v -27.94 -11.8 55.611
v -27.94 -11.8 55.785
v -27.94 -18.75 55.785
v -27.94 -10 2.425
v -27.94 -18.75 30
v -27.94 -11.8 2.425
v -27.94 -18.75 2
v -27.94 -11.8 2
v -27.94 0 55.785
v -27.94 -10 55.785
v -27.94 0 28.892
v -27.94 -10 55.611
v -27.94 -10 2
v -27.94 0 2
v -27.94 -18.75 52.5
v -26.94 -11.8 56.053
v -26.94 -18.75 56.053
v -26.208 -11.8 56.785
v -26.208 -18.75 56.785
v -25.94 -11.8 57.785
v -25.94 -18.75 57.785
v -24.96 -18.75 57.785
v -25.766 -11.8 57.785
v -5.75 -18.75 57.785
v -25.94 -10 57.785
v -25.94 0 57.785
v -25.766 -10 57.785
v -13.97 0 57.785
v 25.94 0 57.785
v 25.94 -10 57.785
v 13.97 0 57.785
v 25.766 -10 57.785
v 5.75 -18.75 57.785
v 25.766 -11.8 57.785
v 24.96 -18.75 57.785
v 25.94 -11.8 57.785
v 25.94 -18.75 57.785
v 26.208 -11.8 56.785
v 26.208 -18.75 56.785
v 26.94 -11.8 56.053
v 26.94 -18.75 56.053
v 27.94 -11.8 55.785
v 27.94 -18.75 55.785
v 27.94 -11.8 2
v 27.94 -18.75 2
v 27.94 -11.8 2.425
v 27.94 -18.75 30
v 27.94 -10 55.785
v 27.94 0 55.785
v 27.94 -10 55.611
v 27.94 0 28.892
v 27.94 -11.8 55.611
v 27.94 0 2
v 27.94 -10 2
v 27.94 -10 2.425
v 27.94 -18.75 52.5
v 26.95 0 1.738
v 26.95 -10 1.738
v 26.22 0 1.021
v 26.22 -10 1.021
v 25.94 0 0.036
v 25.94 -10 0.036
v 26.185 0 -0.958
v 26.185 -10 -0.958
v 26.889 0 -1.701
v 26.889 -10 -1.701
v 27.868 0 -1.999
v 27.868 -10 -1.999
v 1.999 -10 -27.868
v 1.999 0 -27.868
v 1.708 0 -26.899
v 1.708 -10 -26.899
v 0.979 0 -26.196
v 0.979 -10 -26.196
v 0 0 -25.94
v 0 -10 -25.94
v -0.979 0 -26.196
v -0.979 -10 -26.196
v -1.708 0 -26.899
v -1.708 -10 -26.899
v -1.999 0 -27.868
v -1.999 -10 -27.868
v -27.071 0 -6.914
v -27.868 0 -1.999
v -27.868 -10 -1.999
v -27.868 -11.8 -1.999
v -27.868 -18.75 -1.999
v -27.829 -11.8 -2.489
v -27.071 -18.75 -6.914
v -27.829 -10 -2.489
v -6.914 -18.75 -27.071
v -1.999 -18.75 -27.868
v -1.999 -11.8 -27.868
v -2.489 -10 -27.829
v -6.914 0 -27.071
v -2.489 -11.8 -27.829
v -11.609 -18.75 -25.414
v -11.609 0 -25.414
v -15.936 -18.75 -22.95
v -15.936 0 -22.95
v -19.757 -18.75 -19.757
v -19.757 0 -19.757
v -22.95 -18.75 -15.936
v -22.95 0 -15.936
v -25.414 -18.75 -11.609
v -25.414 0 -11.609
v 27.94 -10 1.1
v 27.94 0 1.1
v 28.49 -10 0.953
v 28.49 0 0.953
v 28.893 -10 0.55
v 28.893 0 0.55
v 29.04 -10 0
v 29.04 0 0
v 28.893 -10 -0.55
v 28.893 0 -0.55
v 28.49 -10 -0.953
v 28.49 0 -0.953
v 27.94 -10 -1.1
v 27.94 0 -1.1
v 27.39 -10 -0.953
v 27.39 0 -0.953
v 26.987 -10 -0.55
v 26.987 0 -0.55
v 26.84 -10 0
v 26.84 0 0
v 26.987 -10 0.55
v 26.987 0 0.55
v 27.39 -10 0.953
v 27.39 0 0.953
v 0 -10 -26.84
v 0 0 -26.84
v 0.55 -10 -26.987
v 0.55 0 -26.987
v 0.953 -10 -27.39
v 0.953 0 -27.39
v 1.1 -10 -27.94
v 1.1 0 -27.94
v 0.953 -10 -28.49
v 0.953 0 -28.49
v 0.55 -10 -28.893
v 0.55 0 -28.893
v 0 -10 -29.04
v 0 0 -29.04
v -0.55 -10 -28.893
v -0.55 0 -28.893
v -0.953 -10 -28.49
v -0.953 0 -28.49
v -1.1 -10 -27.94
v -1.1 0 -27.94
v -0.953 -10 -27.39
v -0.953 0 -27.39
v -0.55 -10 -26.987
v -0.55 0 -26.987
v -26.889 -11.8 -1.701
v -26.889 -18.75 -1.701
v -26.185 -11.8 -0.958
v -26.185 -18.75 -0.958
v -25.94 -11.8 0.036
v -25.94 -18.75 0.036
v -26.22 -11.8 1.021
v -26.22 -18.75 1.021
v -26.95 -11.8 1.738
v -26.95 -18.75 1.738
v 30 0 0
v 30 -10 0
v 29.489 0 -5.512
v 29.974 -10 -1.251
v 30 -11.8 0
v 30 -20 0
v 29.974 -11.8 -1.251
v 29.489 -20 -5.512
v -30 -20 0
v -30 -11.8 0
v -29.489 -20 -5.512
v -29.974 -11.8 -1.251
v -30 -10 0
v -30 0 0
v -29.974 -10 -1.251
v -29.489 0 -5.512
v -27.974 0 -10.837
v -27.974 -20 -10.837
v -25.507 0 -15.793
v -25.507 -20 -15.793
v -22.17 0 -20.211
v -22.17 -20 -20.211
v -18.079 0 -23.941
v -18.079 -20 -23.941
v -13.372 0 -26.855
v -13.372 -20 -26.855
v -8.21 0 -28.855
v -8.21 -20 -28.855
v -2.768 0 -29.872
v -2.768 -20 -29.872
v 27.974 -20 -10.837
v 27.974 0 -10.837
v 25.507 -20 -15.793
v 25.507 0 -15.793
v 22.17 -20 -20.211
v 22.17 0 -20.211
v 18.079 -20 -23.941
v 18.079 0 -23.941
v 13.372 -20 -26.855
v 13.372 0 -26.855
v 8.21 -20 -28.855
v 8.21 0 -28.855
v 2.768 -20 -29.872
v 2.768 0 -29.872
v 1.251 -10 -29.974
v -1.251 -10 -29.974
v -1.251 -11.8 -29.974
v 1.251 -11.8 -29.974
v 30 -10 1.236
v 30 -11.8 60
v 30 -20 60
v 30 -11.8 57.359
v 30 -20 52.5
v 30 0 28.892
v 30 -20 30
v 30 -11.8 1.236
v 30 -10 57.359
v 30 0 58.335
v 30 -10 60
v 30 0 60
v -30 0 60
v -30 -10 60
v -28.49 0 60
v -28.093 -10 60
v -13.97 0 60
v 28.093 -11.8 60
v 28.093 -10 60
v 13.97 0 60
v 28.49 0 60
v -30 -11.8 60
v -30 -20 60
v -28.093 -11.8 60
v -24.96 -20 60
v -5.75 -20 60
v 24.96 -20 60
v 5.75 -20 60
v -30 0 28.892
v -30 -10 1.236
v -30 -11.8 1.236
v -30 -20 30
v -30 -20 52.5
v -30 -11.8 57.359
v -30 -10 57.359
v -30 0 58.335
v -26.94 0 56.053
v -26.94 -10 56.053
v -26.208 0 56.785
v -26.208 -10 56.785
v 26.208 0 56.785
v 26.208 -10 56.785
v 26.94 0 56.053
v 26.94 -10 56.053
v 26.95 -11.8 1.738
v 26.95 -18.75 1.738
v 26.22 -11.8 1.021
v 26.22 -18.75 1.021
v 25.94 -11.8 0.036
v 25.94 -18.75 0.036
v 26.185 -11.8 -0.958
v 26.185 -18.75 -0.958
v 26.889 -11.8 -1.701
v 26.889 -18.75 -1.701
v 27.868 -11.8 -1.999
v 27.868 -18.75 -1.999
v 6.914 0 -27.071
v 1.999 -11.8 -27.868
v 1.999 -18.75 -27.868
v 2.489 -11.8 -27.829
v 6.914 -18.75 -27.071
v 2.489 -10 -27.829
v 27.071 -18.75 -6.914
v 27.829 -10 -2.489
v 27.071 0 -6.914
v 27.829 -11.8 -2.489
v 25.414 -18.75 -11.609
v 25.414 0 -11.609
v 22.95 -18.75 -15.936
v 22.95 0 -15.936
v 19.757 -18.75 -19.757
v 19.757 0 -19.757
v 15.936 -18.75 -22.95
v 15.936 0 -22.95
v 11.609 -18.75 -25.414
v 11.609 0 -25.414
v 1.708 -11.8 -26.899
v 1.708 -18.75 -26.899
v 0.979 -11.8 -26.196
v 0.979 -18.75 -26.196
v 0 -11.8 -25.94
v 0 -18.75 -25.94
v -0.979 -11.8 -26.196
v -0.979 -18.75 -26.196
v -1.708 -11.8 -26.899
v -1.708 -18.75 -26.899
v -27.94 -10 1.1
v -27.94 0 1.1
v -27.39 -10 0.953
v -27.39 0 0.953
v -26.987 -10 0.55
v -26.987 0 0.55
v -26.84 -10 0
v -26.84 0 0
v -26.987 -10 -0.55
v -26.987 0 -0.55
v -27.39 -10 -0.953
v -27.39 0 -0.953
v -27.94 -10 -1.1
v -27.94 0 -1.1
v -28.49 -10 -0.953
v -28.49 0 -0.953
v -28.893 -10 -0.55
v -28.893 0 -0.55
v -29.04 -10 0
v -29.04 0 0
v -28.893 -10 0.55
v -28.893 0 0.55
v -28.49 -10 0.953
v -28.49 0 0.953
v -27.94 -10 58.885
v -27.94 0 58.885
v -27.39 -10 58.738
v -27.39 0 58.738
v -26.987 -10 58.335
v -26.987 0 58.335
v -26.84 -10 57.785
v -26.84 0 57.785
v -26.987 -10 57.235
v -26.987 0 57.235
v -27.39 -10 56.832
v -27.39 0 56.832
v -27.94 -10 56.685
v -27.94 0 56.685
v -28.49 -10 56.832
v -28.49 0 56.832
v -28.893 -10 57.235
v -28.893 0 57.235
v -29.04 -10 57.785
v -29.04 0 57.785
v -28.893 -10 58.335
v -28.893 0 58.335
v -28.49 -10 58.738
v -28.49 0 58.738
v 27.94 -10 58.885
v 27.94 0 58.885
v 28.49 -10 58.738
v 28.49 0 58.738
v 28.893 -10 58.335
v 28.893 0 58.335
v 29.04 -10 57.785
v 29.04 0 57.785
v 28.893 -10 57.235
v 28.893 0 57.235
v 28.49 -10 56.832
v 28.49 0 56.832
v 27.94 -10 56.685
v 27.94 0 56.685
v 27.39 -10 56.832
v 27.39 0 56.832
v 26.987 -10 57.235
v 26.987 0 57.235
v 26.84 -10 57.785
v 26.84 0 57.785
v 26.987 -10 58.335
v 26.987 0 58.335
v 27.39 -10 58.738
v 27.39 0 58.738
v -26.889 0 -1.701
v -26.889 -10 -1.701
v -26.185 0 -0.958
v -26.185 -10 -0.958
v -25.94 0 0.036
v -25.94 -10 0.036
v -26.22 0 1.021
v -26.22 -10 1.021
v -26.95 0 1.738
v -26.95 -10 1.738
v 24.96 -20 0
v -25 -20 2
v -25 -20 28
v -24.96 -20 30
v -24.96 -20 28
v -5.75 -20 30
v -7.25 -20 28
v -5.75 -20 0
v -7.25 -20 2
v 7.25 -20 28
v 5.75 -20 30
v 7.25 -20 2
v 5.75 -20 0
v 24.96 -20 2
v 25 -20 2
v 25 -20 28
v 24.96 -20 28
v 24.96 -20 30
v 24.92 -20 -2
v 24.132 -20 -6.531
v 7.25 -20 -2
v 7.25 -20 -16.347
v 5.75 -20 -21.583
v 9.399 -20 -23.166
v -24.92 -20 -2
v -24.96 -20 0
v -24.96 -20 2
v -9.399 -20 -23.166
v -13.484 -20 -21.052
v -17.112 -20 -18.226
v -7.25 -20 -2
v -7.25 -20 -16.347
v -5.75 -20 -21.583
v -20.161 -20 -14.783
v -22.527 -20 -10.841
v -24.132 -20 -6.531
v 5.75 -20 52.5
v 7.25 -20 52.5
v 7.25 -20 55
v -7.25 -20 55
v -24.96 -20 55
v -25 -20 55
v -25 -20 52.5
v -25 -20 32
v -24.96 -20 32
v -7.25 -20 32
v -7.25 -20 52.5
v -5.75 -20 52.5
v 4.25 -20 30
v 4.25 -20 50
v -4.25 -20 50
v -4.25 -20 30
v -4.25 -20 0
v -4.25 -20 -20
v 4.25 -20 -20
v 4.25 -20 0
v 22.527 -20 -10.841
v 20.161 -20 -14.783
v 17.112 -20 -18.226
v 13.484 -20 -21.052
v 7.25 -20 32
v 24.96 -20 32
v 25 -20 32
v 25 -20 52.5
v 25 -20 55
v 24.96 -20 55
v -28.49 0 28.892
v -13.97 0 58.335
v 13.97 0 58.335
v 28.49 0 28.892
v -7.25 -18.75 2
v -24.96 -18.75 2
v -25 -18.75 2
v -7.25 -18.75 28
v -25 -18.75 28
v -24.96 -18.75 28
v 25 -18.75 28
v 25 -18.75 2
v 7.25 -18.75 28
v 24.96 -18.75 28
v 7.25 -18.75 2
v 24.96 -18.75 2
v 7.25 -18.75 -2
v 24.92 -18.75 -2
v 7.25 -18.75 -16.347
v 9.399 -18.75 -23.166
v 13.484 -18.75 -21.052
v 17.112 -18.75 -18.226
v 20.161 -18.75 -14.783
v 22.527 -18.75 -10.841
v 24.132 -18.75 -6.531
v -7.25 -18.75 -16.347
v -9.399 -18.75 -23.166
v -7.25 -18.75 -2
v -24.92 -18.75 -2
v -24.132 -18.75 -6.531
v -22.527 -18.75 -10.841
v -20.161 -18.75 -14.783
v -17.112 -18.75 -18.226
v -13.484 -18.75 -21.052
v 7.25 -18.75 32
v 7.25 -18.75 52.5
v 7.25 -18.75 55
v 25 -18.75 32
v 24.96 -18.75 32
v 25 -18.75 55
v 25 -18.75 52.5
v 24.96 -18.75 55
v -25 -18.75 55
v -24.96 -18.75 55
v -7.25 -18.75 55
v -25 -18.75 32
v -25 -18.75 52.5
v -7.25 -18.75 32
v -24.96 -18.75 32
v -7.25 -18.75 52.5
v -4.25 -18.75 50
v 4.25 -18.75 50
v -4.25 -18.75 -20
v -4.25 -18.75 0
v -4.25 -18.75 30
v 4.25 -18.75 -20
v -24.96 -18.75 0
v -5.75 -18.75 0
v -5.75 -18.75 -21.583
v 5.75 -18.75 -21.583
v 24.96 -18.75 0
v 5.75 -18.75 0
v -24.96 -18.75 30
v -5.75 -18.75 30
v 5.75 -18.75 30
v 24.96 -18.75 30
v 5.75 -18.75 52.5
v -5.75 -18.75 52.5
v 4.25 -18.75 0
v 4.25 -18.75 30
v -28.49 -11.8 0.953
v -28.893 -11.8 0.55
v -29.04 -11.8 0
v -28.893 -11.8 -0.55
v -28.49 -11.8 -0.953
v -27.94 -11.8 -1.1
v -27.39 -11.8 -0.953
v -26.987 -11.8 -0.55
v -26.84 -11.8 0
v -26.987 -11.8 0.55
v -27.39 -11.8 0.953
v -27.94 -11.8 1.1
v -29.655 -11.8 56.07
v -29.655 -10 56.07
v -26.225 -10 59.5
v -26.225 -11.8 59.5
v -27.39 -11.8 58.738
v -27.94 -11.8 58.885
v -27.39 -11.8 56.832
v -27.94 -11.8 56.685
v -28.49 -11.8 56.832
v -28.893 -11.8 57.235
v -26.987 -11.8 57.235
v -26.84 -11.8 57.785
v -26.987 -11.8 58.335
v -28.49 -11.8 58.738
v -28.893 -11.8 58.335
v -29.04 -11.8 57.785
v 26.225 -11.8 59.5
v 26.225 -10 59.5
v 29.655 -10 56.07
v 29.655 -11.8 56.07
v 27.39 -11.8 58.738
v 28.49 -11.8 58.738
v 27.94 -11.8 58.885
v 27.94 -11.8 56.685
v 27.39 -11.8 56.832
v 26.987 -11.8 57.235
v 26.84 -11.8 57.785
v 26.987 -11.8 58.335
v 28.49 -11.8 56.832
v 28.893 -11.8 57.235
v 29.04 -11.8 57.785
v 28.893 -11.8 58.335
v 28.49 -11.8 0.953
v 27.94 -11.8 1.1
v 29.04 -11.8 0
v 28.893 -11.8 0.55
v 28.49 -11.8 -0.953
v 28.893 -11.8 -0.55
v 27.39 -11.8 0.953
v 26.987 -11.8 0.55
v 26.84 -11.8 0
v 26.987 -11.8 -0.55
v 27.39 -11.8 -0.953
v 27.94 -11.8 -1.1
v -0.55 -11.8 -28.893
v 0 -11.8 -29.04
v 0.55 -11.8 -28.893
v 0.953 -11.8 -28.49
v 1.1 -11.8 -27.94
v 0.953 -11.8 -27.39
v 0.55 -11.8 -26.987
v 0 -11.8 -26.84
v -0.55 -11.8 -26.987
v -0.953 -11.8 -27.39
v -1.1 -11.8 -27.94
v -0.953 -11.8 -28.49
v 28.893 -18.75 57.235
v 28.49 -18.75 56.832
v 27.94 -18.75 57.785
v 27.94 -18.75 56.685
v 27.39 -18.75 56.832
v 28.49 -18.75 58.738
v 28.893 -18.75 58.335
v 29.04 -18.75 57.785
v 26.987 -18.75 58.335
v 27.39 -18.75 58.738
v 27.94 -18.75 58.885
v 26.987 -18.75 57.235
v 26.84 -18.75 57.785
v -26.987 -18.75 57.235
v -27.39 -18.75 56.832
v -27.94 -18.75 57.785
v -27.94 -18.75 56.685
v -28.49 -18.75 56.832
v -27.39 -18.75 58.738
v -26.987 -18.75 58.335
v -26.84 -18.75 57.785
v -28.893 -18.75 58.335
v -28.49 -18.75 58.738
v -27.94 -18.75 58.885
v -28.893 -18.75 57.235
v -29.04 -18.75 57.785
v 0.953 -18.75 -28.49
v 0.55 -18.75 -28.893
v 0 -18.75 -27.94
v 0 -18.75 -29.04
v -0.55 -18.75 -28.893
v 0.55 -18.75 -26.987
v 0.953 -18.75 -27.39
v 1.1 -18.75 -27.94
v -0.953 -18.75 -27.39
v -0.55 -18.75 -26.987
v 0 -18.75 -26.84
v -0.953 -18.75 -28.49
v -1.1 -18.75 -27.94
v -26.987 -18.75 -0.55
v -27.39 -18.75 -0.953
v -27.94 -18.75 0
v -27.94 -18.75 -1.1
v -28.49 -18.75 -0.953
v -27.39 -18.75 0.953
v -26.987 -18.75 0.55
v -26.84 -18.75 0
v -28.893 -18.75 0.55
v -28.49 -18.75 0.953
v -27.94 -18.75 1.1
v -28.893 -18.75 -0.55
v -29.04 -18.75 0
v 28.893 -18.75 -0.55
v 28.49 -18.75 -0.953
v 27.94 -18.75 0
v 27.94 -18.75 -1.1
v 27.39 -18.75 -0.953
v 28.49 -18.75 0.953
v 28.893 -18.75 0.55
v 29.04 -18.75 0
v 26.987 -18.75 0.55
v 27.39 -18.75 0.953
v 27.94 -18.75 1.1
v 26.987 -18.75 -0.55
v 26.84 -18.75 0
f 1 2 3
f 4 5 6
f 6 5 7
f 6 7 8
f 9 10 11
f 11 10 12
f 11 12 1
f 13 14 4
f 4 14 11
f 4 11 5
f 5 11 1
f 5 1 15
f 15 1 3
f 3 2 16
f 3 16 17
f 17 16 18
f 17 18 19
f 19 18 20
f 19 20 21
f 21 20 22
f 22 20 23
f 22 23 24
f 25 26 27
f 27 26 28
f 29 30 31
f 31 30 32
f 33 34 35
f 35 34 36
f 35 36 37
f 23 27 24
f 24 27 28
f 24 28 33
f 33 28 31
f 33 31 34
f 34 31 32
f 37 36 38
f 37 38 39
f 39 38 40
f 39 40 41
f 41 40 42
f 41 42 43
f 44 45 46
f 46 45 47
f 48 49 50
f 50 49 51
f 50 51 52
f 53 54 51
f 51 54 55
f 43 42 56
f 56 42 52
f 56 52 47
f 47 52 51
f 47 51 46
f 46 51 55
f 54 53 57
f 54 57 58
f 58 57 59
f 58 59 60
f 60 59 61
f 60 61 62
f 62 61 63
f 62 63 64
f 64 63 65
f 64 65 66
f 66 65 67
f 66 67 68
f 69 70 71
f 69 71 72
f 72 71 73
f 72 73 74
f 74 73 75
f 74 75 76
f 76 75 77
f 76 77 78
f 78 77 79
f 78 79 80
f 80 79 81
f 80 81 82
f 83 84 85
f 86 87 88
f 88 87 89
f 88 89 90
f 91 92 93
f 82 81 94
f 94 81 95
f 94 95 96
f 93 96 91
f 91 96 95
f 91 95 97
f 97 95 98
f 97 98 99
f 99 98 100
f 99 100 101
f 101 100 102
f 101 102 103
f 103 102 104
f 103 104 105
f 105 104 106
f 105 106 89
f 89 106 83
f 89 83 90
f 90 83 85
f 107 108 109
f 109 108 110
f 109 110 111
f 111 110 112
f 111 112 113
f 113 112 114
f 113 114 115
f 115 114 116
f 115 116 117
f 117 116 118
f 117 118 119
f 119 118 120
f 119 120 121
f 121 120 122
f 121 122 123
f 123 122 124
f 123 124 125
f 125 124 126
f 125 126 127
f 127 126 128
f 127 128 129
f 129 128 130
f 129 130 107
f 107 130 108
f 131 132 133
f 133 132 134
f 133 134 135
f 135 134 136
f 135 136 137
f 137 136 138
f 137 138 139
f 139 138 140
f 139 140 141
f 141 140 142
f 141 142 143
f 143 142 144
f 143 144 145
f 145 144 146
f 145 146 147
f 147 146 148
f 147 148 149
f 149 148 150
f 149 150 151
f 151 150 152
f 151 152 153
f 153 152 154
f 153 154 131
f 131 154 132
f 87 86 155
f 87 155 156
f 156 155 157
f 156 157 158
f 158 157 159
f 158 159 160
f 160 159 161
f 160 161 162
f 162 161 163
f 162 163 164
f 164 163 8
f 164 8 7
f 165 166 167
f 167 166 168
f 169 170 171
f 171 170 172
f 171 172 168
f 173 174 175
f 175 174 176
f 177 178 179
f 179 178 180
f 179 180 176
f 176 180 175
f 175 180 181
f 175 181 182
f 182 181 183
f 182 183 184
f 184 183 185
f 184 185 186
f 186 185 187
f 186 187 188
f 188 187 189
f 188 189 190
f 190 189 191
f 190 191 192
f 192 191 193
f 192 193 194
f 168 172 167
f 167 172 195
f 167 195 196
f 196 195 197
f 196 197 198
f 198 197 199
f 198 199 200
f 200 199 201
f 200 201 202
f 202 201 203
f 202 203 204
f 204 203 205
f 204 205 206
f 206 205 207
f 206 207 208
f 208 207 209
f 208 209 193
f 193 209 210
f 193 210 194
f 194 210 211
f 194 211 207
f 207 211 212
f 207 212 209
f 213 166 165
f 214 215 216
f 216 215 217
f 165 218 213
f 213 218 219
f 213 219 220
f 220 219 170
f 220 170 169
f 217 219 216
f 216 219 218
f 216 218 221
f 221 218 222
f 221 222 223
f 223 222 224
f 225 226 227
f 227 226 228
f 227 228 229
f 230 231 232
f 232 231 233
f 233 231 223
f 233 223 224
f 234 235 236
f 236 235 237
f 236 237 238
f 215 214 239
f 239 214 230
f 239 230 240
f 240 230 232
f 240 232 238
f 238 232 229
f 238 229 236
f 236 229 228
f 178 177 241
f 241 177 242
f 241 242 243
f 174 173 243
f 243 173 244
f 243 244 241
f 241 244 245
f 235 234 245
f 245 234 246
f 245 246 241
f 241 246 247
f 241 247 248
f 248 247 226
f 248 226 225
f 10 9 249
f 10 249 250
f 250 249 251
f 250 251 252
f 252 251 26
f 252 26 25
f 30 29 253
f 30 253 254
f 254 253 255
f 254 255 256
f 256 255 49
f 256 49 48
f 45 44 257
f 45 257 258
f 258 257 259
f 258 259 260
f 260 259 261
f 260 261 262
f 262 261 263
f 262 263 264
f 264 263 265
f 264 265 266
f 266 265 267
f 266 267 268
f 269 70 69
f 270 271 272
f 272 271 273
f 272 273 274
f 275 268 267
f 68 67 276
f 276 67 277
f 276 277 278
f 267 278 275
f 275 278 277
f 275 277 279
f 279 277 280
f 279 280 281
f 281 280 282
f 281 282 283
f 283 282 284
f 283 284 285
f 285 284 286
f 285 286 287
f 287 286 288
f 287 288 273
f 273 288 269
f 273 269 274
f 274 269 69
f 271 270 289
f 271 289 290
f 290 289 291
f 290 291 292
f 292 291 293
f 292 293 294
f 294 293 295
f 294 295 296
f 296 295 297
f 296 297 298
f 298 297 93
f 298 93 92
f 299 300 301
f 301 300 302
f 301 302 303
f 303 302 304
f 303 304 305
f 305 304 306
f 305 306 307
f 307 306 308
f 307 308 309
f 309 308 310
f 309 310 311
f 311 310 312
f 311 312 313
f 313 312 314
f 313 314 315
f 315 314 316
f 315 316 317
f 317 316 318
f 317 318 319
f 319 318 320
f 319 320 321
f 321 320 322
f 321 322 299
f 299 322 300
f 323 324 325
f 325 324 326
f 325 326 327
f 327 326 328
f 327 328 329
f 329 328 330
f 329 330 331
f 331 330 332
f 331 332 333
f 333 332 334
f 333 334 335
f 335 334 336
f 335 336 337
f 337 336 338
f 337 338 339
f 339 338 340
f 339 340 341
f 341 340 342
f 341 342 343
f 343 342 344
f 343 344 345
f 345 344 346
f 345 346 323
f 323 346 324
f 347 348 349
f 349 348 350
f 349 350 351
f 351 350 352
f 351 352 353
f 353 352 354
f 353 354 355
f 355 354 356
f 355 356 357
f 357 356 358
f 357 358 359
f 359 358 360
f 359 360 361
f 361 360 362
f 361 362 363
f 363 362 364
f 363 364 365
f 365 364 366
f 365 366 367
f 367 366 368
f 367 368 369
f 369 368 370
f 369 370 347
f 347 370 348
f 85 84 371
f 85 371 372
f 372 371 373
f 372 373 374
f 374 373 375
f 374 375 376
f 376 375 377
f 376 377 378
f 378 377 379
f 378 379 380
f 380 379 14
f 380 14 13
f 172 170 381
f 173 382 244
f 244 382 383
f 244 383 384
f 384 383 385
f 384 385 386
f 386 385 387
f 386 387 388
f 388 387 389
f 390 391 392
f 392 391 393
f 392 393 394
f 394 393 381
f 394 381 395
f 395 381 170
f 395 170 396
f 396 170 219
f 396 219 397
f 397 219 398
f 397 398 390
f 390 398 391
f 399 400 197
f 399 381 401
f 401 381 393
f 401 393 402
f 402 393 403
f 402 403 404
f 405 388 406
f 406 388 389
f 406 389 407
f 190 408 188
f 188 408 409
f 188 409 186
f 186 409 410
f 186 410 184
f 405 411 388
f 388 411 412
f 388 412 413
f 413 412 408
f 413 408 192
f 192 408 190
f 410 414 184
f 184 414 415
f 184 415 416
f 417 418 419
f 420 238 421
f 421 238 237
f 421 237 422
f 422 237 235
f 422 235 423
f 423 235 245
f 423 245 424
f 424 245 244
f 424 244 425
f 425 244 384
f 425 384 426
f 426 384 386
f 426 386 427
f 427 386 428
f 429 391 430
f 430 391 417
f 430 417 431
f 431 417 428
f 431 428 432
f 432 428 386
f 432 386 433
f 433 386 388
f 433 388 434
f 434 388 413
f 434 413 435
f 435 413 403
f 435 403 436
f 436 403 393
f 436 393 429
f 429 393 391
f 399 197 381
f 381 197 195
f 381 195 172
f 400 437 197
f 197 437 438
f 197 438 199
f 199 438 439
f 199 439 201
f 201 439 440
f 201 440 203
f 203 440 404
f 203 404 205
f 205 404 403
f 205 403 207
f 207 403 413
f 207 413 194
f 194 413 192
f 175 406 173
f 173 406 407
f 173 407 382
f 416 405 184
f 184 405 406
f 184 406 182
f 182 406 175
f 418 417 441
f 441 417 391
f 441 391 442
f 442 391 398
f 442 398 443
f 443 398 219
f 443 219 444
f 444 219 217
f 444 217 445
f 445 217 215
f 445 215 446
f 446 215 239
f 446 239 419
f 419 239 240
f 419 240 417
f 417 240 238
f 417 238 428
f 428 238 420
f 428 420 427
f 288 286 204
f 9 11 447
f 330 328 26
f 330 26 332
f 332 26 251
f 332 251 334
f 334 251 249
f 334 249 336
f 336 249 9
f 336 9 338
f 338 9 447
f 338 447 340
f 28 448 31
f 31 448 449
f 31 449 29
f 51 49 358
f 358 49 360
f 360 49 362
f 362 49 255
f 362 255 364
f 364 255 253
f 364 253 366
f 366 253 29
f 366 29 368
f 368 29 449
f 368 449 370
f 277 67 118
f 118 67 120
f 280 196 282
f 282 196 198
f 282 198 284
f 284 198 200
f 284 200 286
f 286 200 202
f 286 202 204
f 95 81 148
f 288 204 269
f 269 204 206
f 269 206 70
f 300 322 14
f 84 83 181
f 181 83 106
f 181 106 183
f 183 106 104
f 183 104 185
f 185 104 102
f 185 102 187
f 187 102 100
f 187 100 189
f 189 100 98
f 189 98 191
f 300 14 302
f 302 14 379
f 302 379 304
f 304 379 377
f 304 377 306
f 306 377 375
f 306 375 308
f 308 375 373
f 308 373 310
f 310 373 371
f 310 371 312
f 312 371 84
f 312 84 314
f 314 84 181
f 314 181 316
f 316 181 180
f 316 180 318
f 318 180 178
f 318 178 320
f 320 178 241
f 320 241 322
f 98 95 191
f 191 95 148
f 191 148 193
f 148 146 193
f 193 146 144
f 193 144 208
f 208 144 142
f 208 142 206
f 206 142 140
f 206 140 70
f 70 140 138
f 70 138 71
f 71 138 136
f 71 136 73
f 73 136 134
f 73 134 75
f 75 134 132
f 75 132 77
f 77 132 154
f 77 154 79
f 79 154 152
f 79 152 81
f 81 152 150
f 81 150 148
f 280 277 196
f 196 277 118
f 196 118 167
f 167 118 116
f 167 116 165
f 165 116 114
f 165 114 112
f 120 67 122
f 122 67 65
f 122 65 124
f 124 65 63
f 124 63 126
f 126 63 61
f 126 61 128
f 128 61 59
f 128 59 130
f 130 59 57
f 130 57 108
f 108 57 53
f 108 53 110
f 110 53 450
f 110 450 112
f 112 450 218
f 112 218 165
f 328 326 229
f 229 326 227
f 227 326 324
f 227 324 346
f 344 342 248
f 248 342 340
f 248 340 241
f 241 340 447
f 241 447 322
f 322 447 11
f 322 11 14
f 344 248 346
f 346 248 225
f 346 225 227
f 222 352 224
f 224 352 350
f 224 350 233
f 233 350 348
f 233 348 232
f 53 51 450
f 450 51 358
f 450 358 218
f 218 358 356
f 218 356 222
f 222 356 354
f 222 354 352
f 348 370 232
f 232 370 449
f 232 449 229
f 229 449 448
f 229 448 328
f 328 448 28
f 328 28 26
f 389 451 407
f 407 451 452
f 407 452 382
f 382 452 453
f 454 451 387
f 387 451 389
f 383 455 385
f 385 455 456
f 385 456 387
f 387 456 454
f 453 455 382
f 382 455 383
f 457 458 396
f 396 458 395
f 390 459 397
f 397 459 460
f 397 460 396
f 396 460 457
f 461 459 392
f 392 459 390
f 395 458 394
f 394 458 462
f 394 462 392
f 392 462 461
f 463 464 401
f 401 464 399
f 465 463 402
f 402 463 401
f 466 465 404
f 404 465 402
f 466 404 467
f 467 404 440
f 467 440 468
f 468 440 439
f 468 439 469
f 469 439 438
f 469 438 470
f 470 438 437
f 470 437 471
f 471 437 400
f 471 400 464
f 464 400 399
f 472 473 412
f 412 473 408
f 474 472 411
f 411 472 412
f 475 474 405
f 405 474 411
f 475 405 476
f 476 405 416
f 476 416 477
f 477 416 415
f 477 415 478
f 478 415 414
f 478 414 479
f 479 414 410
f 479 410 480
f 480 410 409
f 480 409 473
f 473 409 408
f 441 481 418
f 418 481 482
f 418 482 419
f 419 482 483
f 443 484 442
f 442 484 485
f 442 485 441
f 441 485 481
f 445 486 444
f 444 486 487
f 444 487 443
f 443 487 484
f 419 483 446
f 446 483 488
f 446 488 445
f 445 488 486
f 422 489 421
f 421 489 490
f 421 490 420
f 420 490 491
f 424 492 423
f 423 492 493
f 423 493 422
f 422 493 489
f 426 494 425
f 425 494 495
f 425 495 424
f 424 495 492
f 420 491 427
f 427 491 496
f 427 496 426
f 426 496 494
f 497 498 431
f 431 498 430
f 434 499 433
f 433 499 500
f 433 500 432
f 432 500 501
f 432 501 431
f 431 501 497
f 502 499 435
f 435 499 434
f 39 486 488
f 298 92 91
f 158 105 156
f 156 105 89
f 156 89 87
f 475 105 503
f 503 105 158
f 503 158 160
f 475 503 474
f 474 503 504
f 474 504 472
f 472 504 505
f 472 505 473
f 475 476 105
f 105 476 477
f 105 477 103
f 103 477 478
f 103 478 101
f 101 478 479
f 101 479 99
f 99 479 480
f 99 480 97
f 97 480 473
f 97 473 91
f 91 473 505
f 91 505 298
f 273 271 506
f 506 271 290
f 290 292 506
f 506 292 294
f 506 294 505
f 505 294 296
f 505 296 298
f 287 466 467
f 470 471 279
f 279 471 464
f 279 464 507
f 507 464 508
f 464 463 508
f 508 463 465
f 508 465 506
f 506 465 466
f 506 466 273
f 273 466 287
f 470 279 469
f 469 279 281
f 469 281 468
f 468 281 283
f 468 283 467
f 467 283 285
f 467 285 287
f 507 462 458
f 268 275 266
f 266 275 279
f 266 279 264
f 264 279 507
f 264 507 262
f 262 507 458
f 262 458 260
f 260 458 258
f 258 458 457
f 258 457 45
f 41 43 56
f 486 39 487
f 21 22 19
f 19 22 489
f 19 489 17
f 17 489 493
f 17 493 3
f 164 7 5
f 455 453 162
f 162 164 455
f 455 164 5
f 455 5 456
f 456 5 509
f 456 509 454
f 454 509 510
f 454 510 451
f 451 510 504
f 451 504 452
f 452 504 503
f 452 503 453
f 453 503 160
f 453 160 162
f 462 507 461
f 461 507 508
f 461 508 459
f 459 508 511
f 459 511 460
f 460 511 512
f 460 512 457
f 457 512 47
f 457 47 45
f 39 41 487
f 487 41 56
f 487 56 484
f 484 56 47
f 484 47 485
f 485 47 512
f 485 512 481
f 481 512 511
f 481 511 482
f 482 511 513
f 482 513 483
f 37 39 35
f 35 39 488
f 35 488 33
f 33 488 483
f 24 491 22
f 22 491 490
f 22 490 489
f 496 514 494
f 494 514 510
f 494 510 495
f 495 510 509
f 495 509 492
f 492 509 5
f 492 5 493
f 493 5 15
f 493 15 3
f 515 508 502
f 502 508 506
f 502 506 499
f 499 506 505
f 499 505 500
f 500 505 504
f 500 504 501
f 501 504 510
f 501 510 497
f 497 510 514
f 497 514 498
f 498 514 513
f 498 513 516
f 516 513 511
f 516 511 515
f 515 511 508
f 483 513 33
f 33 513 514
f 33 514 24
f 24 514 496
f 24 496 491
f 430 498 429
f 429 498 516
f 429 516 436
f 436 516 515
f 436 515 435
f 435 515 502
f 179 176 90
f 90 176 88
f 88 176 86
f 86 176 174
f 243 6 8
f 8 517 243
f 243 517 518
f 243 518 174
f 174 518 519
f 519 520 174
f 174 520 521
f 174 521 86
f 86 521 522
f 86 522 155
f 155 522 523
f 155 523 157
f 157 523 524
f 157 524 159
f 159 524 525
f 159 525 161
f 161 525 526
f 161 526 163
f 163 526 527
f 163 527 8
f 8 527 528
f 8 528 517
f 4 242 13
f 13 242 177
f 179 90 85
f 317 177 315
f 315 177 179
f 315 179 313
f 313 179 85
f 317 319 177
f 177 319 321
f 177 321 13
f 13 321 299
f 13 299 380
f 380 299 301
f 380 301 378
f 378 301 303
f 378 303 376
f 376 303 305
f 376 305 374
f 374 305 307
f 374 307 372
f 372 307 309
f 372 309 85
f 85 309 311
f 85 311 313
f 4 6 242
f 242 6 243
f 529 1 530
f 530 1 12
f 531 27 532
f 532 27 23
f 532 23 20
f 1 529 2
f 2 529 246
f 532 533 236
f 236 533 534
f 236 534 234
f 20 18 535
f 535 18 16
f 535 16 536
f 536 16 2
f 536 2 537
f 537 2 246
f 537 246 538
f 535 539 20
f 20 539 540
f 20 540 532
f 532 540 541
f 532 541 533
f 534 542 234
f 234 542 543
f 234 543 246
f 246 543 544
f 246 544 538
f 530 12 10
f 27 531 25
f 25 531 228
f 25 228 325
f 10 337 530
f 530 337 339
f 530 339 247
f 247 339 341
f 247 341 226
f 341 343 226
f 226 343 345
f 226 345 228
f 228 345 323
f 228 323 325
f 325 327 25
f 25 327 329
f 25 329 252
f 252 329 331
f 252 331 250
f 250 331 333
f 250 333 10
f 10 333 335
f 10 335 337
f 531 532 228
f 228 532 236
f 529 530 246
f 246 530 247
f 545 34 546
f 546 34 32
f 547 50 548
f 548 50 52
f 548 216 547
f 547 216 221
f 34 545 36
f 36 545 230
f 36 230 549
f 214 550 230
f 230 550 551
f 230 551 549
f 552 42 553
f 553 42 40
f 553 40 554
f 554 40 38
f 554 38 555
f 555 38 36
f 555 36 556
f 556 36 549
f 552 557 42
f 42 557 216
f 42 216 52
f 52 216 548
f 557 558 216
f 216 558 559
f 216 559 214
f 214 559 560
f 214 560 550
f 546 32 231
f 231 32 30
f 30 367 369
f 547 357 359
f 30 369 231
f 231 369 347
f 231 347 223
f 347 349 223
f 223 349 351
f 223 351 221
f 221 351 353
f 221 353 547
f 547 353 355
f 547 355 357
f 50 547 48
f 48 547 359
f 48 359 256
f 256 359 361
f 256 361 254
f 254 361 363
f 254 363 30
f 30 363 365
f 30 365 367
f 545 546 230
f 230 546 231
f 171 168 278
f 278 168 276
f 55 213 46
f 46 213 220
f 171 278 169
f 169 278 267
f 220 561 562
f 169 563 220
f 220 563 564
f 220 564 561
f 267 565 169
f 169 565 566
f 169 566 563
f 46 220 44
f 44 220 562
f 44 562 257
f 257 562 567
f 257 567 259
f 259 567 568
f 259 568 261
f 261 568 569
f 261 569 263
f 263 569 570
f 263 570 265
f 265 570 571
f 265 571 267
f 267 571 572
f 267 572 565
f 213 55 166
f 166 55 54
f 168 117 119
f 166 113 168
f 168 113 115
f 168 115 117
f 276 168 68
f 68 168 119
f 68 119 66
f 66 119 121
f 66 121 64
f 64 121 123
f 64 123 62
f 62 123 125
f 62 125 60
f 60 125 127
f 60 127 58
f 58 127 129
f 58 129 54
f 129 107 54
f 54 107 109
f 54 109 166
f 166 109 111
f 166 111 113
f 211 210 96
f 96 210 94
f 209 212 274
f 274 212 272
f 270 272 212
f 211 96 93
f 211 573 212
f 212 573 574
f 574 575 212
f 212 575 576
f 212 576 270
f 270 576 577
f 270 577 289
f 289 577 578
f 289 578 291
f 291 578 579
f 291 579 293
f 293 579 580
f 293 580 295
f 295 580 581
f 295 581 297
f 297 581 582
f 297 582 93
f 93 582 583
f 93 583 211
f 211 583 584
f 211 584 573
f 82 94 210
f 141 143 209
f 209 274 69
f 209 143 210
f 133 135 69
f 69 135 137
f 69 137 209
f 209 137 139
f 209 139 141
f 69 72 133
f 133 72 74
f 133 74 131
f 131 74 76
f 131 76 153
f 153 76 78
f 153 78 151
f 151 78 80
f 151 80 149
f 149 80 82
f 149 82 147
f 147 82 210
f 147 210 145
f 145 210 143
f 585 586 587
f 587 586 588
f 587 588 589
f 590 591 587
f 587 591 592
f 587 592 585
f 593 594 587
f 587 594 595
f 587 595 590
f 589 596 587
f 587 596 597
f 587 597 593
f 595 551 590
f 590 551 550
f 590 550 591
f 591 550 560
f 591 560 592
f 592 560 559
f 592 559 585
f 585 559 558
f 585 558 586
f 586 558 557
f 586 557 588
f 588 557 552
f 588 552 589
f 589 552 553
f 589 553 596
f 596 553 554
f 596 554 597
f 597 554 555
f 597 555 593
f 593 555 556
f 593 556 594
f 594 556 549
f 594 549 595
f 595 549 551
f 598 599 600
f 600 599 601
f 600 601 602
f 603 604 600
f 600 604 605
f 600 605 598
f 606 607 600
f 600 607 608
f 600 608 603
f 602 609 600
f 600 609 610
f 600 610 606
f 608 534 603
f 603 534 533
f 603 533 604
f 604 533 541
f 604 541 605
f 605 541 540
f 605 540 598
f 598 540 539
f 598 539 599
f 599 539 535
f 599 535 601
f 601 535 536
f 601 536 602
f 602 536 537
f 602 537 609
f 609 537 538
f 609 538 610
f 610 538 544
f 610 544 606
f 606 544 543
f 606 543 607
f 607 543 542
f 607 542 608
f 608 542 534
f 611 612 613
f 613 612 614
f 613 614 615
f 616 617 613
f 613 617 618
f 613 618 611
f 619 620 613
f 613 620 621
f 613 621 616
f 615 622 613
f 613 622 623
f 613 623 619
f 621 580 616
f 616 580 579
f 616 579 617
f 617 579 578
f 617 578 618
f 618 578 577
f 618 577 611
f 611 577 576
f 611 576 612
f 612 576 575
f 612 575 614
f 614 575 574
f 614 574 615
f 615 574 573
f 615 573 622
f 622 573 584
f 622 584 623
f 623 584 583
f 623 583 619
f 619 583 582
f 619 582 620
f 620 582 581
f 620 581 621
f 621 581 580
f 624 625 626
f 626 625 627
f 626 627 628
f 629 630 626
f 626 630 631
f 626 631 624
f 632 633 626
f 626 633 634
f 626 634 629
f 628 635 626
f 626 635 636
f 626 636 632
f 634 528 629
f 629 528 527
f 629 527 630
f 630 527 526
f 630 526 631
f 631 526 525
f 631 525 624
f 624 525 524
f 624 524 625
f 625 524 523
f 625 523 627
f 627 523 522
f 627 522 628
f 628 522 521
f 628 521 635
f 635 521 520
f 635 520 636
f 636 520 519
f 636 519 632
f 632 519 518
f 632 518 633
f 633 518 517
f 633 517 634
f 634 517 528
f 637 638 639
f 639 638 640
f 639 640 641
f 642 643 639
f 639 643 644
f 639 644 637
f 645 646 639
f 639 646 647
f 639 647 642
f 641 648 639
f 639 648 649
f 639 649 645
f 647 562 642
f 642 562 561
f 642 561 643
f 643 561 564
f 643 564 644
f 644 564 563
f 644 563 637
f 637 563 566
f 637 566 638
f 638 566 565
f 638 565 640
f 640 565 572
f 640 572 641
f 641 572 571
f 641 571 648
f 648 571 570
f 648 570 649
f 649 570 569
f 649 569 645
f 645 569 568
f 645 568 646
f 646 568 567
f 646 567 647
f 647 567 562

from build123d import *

# Parameters (mm, degrees)
SKETCH1_R           = 1.1
BOSS_EXTRUDE1_DEPTH = 20
SKETCH2_W           = 8.5
SKETCH2_H           = 70
SKETCH2_W_2         = 17.75
SKETCH2_H_2         = 26
BOSS_EXTRUDE2_DEPTH = 1.25
CUT_EXTRUDE1_START  = -10
CUT_EXTRUDE1_DEPTH  = 1.8


with BuildPart() as part:
    # Sketch1 → Boss-Extrude1 (new body)
    with BuildSketch(Plane(origin=(0, 0, 0), x_dir=(1, 0, 0), z_dir=(0, 1, 0))):
        with BuildLine():
            Line((-30, 0), (-30, -60))
            Line((-30, -60), (30, -60))
            Line((30, -60), (30, 0))
            ThreePointArc((30, 0), (0, 30), (-30, 0))
        make_face()
        with Locations((27.94, 0)):
            Circle(SKETCH1_R, mode=Mode.SUBTRACT)
        with Locations((-27.94, 0)):
            Circle(SKETCH1_R, mode=Mode.SUBTRACT)
        with Locations((0, 27.94)):
            Circle(SKETCH1_R, mode=Mode.SUBTRACT)
        with Locations((-27.94, -57.785)):
            Circle(SKETCH1_R, mode=Mode.SUBTRACT)
        with Locations((27.94, -57.785)):
            Circle(SKETCH1_R, mode=Mode.SUBTRACT)
        with BuildLine():
            Line((27.94, -55.785), (27.94, -2))
            ThreePointArc((27.94, -2), (25.940320377, -0.035796715), (27.868418039, 1.998718595))
            ThreePointArc((27.868418039, 1.998718595), (19.756563466, 19.756563466), (1.998718595, 27.868418039))
            ThreePointArc((1.998718595, 27.868418039), (0, 25.94), (-1.998718595, 27.868418039))
            ThreePointArc((-1.998718595, 27.868418039), (-19.756563466, 19.756563466), (-27.868418039, 1.998718595))
            ThreePointArc((-27.868418039, 1.998718595), (-25.940320377, -0.035796715), (-27.94, -2))
            Line((-27.94, -2), (-27.94, -55.785))
            ThreePointArc((-27.94, -55.785), (-26.525786438, -56.370786438), (-25.94, -57.785))
            Line((-25.94, -57.785), (25.94, -57.785))
            ThreePointArc((25.94, -57.785), (26.525786438, -56.370786438), (27.94, -55.785))
        make_face(mode=Mode.SUBTRACT)
    extrude(amount=-BOSS_EXTRUDE1_DEPTH)

    # Sketch2 → Boss-Extrude2 (add)
    with BuildSketch(Plane.XZ.offset(20)):
        with BuildLine():
            Line((30, 0), (30, 60))
            Line((30, 60), (-30, 60))
            Line((-30, 60), (-30, 0))
            ThreePointArc((-30, 0), (0, -30), (30, 0))
        make_face()
        Polygon((-7.25, 53), (-7.25, 32), (-25, 32), (-25, 55), (-7.25, 55), align=None, mode=Mode.SUBTRACT)
        with Locations((0, 15)):
            Rectangle(SKETCH2_W, SKETCH2_H, mode=Mode.SUBTRACT)
        Polygon((7.25, 53), (7.25, 32), (25, 32), (25, 55), (7.25, 55), align=None, mode=Mode.SUBTRACT)
        with Locations((16.125, 15)):
            Rectangle(SKETCH2_W_2, SKETCH2_H_2, mode=Mode.SUBTRACT)
        with BuildLine():
            Line((-7.25, -16.347418764), (-9.399268665, -23.165788322))
            ThreePointArc((-9.399268665, -23.165788322), (-20.160567843, -14.783487553), (-24.919871589, -2))
            Line((-24.919871589, -2), (-7.25, -2))
            Line((-7.25, -2), (-7.25, -16.347418764))
        make_face(mode=Mode.SUBTRACT)
        with BuildLine():
            Line((7.25, -16.347418764), (9.399268665, -23.165788322))
            ThreePointArc((9.399268665, -23.165788322), (20.160567843, -14.783487553), (24.919871589, -2))
            Line((24.919871589, -2), (7.25, -2))
            Line((7.25, -2), (7.25, -16.347418764))
        make_face(mode=Mode.SUBTRACT)
        with Locations((-16.125, 15)):
            Rectangle(SKETCH2_W_2, SKETCH2_H_2, mode=Mode.SUBTRACT)
    extrude(amount=-BOSS_EXTRUDE2_DEPTH)

    # Sketch3 → Cut-Extrude1 (cut)
    with BuildSketch(Plane(origin=(0, 0, 0), x_dir=(1, 0, 0), z_dir=(0, 1, 0)).offset(CUT_EXTRUDE1_START)):
        Polygon((2.424871131, 27.94), (1.212435565, 30.04), (-1.212435565, 30.04), (-2.424871131, 27.94), (-2.923440006, 27.076453377), (-1.212435565, 25.84), (1.212435565, 25.84), (2.664841123, 27.524359781), align=None)
        Polygon((27.94, -2.424871131), (30.04, -1.212435565), (30.04, 1.212435565), (27.94, 2.424871131), (27.29756517, 2.795781052), (25.84, 1.212435565), (25.84, -1.212435565), align=None)
        Polygon((30.28224565, -58.412602831), (29.65464282, -56.07035718), (27.312397169, -55.44275435), (25.59775435, -57.157397169), (26.22535718, -59.49964282), (28.567602831, -60.12724565), (30.909848481, -60.754848481), align=None)
        Polygon((-25.59775435, -57.157397169), (-27.312397169, -55.44275435), (-29.65464282, -56.07035718), (-30.28224565, -58.412602831), (-30.909848481, -60.754848481), (-28.567602831, -60.12724565), (-26.22535718, -59.49964282), align=None)
        Polygon((-30.04, 1.212435565), (-30.04, -1.212435565), (-27.94, -2.424871131), (-25.84, -1.212435565), (-25.84, 1.212435565), (-27.443113573, 2.711748643), (-27.94, 2.424871131), align=None)
    extrude(amount=-CUT_EXTRUDE1_DEPTH, mode=Mode.SUBTRACT)


solid = part.part
